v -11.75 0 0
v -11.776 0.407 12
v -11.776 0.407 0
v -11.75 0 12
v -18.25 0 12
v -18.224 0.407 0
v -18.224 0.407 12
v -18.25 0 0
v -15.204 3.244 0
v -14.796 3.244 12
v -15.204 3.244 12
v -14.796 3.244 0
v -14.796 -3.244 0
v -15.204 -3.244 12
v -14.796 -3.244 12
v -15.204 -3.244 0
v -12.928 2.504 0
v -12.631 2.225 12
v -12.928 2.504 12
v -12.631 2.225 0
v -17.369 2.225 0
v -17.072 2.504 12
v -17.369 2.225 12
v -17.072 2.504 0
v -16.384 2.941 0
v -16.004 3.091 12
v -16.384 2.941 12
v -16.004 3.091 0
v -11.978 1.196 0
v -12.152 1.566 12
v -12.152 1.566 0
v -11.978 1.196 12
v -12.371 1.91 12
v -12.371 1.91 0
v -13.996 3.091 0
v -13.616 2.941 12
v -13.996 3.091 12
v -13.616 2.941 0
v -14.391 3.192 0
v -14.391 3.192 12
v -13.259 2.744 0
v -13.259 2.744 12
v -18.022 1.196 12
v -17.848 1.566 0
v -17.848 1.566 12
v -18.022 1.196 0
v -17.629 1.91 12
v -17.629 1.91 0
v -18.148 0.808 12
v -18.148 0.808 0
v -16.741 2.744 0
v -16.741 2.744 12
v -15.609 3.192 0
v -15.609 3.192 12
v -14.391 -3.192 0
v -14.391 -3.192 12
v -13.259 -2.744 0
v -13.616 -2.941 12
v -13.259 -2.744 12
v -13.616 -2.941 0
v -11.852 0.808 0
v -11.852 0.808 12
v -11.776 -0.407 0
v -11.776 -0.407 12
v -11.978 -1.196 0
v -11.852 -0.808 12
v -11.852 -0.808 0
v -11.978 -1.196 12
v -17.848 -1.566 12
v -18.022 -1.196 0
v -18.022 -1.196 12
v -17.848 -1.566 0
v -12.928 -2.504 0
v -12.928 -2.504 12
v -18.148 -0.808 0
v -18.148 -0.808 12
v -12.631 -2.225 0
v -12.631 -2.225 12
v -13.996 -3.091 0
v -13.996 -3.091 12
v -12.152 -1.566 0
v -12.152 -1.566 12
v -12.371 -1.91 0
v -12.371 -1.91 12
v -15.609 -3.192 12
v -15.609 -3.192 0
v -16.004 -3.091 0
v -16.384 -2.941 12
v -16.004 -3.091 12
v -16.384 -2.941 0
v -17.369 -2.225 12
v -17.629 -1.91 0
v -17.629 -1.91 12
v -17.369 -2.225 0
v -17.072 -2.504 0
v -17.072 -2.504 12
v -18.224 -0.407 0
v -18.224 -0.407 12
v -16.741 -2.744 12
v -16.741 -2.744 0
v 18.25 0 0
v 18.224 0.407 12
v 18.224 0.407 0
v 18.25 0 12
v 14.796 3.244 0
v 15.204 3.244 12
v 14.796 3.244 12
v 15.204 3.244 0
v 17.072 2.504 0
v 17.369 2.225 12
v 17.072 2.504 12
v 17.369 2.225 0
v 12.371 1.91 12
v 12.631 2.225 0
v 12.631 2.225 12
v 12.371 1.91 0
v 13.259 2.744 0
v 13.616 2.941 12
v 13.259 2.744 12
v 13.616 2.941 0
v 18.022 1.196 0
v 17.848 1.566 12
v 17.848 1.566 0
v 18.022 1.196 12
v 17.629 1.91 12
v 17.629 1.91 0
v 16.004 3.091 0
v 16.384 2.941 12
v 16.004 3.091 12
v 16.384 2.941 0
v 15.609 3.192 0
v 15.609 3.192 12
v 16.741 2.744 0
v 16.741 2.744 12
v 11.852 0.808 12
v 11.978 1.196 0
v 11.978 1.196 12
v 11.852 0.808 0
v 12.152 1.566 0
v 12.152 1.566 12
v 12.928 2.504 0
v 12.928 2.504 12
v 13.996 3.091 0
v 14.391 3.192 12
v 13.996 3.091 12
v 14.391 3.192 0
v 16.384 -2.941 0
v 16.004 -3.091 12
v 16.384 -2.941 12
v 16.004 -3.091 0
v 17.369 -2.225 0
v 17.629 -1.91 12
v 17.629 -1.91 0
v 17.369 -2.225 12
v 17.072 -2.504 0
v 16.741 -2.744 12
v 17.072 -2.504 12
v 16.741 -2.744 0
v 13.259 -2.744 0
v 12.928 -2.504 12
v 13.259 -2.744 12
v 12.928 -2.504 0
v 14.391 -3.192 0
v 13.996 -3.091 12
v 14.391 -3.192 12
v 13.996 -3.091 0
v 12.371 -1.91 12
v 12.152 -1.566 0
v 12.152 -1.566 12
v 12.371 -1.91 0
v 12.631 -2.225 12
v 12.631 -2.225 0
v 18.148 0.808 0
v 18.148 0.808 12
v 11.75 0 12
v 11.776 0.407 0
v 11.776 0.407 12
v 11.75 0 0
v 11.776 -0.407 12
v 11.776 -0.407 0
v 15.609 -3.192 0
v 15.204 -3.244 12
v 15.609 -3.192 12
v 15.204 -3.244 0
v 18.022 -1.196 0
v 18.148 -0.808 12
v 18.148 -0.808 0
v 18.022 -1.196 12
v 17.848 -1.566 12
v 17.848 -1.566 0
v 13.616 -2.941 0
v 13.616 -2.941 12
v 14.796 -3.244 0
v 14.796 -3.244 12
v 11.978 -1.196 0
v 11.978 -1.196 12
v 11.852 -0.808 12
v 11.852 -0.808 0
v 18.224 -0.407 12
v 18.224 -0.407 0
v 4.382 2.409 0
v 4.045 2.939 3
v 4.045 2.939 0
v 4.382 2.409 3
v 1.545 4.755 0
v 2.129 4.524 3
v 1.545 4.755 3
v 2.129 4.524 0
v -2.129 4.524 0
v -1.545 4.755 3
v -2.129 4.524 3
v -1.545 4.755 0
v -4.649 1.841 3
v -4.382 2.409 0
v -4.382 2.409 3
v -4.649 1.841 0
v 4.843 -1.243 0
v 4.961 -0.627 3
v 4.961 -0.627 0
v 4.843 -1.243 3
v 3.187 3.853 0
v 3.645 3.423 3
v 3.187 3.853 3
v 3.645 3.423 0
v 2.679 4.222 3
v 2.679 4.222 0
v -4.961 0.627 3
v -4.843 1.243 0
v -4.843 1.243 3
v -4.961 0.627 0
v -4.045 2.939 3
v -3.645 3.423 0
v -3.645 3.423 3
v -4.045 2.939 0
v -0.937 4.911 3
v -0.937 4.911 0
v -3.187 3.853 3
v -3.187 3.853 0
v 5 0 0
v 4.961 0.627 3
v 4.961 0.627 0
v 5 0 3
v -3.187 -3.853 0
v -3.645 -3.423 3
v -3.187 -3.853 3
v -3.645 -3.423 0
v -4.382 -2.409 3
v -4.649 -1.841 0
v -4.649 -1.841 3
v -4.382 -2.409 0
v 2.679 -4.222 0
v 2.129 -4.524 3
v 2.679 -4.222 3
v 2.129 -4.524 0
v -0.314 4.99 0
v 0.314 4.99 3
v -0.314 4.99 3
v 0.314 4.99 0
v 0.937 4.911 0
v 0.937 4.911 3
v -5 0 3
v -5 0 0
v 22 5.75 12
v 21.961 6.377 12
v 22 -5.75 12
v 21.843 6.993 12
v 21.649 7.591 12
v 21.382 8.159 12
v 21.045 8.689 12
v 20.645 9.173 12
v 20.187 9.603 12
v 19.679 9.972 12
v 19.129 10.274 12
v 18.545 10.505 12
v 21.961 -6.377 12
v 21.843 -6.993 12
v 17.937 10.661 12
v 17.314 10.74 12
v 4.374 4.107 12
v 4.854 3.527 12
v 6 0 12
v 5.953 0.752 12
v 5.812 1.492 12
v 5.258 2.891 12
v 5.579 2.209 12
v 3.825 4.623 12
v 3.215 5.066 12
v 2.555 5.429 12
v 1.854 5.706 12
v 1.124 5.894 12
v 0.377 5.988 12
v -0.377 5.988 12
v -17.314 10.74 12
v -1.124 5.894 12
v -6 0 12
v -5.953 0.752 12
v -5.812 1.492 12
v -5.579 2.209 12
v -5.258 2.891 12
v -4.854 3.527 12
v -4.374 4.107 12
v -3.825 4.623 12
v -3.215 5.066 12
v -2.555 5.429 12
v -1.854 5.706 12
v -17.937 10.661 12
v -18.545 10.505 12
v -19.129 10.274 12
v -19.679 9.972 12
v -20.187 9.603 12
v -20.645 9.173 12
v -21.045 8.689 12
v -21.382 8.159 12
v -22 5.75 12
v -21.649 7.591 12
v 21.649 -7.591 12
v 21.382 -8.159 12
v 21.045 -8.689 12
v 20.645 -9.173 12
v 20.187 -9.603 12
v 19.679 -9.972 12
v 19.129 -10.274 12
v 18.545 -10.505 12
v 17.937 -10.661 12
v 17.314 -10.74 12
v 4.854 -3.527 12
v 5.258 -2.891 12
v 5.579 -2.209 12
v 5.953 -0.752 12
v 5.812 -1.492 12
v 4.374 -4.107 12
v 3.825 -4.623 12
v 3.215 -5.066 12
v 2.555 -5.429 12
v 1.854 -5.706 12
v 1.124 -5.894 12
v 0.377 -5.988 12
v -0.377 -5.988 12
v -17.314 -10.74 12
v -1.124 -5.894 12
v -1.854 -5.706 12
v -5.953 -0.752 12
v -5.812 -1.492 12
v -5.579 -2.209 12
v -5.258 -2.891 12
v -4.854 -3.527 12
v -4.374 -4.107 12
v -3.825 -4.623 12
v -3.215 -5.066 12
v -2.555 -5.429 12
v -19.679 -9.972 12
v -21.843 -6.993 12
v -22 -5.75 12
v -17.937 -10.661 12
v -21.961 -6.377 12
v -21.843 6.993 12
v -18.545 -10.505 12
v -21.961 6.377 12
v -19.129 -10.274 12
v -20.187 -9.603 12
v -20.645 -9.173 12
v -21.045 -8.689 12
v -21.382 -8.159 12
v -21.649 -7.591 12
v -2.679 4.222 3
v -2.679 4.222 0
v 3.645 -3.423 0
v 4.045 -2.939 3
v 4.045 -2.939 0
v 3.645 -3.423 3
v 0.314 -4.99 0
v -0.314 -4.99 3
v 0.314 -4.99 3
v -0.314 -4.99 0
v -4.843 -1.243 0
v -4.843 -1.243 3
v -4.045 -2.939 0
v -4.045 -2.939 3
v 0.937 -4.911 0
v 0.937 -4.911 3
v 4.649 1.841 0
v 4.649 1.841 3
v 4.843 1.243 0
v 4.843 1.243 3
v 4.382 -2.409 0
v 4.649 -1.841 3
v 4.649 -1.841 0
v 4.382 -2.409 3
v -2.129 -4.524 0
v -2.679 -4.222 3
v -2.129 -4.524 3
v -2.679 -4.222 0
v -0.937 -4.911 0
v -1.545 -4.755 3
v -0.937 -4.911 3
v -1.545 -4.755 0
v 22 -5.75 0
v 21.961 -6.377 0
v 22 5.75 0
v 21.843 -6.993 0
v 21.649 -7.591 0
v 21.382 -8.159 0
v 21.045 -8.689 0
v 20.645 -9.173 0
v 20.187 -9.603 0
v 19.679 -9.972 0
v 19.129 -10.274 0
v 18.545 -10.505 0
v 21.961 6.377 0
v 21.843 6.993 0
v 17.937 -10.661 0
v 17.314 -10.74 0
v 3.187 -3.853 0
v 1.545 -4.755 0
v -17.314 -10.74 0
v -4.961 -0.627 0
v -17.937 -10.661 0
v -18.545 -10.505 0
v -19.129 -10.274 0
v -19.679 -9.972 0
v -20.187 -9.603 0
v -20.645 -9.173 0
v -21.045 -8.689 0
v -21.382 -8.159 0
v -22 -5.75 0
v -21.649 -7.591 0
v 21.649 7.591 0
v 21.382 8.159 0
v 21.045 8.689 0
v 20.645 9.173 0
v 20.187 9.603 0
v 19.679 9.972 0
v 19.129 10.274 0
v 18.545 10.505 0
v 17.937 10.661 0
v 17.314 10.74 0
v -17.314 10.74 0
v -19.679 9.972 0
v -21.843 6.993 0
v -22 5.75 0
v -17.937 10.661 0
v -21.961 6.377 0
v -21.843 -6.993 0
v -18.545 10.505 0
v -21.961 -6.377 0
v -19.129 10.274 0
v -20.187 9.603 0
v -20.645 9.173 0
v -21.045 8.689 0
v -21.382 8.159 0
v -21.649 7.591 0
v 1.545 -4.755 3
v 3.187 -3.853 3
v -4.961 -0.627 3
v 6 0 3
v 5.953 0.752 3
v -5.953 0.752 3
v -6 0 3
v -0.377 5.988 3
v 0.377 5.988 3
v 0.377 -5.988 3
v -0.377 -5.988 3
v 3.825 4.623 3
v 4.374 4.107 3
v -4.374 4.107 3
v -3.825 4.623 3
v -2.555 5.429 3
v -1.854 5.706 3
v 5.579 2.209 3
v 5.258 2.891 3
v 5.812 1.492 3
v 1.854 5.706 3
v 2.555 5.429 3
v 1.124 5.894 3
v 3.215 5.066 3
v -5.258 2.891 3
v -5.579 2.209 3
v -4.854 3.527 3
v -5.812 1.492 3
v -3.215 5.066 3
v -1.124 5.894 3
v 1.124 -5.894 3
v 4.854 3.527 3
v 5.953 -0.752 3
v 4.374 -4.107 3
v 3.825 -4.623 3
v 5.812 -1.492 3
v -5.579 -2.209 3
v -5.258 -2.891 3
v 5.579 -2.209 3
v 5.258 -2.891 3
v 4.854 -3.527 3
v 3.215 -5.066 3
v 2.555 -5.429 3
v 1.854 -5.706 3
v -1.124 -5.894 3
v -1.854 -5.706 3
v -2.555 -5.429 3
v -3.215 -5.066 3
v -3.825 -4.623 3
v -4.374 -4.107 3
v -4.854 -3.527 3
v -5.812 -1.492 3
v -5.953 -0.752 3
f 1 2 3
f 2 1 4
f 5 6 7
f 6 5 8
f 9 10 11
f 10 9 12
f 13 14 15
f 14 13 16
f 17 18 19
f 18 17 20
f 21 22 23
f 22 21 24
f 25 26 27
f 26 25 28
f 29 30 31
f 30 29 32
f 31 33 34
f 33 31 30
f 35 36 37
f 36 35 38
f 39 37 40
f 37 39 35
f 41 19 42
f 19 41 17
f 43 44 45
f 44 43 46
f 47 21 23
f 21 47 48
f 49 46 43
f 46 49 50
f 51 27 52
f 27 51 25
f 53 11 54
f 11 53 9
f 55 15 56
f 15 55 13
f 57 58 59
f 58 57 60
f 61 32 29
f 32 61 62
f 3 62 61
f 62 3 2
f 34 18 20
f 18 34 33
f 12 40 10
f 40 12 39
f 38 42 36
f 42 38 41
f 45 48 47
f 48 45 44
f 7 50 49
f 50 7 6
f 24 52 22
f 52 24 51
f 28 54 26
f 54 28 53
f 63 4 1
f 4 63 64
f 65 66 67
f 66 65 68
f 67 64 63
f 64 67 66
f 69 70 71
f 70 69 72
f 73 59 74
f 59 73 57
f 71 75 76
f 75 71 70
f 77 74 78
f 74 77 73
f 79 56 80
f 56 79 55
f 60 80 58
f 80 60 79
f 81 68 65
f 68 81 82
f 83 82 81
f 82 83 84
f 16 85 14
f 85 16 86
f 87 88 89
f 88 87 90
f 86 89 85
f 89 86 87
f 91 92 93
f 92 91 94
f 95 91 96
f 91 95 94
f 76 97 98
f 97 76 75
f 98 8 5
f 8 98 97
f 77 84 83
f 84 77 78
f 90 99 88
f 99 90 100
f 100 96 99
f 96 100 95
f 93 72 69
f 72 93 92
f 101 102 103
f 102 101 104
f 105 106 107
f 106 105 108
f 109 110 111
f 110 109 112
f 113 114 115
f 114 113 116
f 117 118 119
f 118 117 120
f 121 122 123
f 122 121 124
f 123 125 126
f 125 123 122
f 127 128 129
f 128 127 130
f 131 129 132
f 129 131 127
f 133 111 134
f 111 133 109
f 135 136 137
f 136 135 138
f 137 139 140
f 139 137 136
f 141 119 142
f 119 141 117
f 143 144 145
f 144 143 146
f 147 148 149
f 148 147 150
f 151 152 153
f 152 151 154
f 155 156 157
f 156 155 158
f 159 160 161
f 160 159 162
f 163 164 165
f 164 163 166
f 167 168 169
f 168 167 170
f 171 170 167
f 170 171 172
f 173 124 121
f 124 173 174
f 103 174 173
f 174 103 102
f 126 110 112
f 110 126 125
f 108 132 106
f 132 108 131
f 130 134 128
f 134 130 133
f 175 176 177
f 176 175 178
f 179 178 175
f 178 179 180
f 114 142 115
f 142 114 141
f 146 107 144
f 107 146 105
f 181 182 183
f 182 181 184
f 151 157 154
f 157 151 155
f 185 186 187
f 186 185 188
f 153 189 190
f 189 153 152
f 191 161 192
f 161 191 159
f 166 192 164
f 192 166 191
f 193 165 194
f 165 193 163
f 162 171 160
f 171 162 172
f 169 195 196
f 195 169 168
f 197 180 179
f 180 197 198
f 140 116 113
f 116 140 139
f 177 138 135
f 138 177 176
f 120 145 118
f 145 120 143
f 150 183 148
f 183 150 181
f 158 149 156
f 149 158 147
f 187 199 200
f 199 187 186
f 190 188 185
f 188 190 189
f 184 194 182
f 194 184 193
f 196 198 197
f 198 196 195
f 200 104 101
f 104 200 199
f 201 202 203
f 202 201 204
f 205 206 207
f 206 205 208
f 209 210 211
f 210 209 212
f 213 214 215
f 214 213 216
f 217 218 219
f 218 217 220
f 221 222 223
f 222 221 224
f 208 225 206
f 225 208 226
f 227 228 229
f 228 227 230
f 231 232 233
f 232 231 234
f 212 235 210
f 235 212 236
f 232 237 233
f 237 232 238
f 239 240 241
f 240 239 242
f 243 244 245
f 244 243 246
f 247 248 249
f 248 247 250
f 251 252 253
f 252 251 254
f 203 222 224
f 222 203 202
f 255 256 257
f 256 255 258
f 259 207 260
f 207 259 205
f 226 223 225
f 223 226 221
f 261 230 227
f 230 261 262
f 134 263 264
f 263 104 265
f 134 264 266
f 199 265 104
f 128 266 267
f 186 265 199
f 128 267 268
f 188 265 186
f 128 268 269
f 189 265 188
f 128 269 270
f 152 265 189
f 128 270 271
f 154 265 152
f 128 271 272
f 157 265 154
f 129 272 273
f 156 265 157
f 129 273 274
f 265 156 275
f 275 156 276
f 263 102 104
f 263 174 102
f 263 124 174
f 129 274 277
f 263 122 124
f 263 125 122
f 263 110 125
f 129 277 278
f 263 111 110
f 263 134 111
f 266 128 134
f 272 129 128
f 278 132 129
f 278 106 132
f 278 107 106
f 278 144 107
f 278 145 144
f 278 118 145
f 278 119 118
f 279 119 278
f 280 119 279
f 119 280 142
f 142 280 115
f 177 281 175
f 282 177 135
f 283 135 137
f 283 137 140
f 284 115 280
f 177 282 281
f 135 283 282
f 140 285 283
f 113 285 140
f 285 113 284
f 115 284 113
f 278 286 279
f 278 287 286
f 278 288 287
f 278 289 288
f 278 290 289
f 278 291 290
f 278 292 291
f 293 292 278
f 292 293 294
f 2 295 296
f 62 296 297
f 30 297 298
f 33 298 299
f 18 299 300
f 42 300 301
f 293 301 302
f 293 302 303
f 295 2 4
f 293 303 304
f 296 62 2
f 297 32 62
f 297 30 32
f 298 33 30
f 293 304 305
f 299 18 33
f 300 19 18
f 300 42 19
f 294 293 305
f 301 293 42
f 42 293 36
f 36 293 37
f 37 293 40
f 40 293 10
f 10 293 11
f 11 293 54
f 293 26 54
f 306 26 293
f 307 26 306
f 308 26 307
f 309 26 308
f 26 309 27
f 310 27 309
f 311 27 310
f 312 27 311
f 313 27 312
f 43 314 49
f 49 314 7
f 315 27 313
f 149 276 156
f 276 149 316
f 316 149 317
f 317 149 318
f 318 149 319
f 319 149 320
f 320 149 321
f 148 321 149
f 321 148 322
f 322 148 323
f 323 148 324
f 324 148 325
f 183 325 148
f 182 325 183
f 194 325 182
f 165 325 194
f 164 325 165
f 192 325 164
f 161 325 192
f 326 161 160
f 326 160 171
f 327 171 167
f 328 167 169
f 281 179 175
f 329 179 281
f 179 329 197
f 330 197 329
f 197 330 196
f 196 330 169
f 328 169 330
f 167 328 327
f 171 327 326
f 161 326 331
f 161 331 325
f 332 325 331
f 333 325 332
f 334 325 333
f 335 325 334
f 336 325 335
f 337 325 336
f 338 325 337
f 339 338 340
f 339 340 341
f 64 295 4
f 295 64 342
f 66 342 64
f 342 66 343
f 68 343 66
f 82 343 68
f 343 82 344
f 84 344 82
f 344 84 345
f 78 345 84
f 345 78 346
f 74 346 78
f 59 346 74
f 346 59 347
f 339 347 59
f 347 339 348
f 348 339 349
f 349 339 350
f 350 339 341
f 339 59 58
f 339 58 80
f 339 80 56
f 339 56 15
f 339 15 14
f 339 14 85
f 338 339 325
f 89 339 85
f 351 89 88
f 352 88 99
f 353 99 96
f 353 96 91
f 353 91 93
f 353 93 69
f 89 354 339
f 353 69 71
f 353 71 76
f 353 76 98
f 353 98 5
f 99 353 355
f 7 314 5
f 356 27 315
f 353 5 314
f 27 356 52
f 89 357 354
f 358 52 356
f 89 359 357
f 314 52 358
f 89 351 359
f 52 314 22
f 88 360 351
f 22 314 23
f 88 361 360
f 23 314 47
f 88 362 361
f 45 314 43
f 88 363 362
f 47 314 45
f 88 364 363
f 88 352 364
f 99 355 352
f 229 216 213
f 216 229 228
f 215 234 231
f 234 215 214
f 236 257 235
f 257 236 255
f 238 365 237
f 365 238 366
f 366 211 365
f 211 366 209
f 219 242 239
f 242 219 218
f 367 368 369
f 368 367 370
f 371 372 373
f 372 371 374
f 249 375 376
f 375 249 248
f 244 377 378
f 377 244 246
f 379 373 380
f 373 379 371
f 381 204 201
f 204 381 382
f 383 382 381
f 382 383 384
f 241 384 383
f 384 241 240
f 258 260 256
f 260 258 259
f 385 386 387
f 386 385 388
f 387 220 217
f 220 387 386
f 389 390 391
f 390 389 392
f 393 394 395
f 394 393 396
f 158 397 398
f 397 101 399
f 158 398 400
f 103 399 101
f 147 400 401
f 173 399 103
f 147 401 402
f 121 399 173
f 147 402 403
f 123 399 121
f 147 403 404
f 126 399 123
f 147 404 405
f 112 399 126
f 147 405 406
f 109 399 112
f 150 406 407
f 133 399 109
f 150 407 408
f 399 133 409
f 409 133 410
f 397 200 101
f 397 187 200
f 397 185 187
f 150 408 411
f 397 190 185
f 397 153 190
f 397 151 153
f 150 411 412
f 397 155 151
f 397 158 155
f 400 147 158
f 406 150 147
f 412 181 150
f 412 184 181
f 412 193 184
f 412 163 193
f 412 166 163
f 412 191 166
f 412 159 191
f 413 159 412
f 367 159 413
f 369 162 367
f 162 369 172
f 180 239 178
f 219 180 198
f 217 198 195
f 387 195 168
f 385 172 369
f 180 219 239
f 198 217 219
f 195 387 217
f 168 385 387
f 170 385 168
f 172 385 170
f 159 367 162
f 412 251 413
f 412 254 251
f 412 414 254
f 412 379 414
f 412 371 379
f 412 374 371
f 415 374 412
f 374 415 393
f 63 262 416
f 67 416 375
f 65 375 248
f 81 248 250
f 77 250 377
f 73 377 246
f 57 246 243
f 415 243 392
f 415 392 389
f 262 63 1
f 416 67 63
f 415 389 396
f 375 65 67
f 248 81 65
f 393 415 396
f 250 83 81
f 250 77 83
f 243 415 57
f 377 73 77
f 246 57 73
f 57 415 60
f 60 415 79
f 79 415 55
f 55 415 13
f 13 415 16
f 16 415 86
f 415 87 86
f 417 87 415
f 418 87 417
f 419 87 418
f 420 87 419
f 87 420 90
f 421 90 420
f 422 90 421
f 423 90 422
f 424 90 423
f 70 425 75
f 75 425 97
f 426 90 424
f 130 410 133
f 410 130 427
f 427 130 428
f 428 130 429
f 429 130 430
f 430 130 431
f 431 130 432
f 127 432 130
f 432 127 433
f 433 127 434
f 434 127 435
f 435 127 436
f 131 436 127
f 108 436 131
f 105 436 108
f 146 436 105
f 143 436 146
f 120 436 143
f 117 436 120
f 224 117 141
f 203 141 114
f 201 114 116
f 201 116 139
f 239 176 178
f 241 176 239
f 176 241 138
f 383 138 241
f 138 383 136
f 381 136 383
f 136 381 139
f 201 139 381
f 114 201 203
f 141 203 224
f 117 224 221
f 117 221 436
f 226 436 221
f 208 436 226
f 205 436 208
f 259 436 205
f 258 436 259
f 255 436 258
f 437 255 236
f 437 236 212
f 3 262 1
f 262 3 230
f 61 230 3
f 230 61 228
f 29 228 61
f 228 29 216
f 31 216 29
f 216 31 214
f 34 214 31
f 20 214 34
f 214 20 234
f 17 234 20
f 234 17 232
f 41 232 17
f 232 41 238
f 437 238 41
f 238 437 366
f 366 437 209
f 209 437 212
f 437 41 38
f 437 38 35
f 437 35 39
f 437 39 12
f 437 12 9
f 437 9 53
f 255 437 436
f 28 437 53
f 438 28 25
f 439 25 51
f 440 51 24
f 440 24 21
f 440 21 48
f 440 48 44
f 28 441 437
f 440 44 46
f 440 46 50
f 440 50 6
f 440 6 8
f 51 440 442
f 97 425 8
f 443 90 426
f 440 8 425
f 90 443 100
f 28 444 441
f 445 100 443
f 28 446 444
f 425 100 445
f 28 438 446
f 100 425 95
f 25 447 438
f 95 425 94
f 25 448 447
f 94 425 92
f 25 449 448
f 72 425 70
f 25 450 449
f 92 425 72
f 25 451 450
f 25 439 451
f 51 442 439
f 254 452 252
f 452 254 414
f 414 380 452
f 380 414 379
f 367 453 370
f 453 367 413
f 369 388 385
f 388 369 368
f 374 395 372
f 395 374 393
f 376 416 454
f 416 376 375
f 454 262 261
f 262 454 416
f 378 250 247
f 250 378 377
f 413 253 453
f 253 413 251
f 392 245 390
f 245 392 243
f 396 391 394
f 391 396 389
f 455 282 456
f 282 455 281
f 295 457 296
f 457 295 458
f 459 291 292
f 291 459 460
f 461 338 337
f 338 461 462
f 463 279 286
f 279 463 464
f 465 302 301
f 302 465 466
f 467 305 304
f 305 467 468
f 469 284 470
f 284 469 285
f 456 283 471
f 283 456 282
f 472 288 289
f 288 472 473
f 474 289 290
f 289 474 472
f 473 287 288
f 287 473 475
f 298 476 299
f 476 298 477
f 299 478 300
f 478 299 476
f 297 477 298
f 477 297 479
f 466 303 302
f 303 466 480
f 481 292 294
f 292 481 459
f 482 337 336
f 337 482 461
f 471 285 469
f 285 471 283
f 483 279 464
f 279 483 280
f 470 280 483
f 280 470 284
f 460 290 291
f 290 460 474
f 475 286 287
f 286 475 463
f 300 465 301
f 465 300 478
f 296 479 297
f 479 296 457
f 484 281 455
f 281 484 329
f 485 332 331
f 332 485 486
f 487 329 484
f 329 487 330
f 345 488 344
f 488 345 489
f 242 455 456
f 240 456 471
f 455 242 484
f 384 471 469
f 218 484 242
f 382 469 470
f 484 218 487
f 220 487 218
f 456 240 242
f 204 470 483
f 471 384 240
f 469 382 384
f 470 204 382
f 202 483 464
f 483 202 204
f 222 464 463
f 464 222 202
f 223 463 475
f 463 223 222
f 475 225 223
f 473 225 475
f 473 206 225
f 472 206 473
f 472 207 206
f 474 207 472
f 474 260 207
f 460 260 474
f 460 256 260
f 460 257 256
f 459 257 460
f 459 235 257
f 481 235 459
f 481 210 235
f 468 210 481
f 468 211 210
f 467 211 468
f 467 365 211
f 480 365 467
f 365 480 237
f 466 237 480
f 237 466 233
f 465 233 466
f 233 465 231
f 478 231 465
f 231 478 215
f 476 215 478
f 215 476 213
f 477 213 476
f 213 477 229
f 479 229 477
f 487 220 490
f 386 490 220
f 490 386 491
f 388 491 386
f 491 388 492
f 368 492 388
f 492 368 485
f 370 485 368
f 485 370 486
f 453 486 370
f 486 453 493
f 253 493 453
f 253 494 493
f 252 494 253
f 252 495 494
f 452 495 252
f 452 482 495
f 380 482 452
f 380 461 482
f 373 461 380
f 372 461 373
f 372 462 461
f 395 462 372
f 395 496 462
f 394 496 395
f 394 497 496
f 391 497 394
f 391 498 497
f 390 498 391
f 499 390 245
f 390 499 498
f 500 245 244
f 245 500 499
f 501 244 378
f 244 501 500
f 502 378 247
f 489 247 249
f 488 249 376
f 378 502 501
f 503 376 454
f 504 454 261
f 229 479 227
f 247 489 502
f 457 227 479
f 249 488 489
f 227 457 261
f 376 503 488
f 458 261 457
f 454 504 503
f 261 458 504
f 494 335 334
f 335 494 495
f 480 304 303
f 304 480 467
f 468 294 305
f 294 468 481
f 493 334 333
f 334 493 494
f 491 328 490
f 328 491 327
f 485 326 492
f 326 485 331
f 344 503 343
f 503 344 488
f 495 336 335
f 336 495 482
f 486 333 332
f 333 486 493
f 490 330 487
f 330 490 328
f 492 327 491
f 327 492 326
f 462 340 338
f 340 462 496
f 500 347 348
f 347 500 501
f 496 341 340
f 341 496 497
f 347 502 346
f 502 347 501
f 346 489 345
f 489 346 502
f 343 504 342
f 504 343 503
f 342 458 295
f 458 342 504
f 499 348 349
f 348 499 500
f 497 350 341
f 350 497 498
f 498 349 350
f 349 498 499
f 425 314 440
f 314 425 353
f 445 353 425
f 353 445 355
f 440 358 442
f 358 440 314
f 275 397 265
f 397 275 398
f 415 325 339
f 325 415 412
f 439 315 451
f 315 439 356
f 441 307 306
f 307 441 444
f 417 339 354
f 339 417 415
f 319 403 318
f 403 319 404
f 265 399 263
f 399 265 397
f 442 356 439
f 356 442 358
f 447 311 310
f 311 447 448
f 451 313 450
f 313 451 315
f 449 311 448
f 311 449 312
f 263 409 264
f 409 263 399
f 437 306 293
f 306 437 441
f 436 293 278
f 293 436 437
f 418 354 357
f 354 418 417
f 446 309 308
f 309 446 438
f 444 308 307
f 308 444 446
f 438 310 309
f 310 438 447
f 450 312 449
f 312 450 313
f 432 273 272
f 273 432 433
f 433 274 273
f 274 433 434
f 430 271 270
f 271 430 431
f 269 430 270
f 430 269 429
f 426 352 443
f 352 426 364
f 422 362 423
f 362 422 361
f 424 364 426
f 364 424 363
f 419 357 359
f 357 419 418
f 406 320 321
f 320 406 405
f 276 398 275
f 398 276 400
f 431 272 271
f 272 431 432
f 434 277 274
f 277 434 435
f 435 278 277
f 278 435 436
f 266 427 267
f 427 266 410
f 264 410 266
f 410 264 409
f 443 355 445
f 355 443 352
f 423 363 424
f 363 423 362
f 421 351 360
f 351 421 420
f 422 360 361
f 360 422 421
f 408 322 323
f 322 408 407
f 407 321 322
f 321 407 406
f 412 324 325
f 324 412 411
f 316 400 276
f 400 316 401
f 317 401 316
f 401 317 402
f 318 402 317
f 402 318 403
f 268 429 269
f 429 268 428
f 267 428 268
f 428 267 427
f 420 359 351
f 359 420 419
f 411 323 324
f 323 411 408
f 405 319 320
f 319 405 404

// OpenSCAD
$fn = 50;


difference() {
	union() {
		hull() {
			translate(v = [-17.0000000000, 5.7500000000, 0]) {
				cylinder(h = 12, r = 5);
			}
			translate(v = [17.0000000000, 5.7500000000, 0]) {
				cylinder(h = 12, r = 5);
			}
			translate(v = [-17.0000000000, -5.7500000000, 0]) {
				cylinder(h = 12, r = 5);
			}
			translate(v = [17.0000000000, -5.7500000000, 0]) {
				cylinder(h = 12, r = 5);
			}
		}
	}
	union() {
		translate(v = [-15.0000000000, 0.0000000000, -100.0000000000]) {
			cylinder(h = 200, r = 3.2500000000);
		}
		translate(v = [15.0000000000, 0.0000000000, -100.0000000000]) {
			cylinder(h = 200, r = 3.2500000000);
		}
		translate(v = [15.0000000000, 0.0000000000, -100.0000000000]) {
			cylinder(h = 200, r = 3.2500000000);
		}
		translate(v = [-15.0000000000, 0.0000000000, -100.0000000000]) {
			cylinder(h = 200, r = 1.8000000000);
		}
		translate(v = [15.0000000000, 0.0000000000, -100.0000000000]) {
			cylinder(h = 200, r = 1.8000000000);
		}
		translate(v = [-15.0000000000, 0.0000000000, -100.0000000000]) {
			cylinder(h = 200, r = 1.8000000000);
		}
		translate(v = [15.0000000000, 0.0000000000, -100.0000000000]) {
			cylinder(h = 200, r = 1.8000000000);
		}
		translate(v = [-15.0000000000, 0.0000000000, -100.0000000000]) {
			cylinder(h = 200, r = 1.8000000000);
		}
		translate(v = [15.0000000000, 0.0000000000, -100.0000000000]) {
			cylinder(h = 200, r = 1.8000000000);
		}
		#cylinder(h = 12, r = 5.0000000000);
		#translate(v = [0, 0, 3]) {
			cylinder(h = 9, r = 6.0000000000);
		}
	}
}
